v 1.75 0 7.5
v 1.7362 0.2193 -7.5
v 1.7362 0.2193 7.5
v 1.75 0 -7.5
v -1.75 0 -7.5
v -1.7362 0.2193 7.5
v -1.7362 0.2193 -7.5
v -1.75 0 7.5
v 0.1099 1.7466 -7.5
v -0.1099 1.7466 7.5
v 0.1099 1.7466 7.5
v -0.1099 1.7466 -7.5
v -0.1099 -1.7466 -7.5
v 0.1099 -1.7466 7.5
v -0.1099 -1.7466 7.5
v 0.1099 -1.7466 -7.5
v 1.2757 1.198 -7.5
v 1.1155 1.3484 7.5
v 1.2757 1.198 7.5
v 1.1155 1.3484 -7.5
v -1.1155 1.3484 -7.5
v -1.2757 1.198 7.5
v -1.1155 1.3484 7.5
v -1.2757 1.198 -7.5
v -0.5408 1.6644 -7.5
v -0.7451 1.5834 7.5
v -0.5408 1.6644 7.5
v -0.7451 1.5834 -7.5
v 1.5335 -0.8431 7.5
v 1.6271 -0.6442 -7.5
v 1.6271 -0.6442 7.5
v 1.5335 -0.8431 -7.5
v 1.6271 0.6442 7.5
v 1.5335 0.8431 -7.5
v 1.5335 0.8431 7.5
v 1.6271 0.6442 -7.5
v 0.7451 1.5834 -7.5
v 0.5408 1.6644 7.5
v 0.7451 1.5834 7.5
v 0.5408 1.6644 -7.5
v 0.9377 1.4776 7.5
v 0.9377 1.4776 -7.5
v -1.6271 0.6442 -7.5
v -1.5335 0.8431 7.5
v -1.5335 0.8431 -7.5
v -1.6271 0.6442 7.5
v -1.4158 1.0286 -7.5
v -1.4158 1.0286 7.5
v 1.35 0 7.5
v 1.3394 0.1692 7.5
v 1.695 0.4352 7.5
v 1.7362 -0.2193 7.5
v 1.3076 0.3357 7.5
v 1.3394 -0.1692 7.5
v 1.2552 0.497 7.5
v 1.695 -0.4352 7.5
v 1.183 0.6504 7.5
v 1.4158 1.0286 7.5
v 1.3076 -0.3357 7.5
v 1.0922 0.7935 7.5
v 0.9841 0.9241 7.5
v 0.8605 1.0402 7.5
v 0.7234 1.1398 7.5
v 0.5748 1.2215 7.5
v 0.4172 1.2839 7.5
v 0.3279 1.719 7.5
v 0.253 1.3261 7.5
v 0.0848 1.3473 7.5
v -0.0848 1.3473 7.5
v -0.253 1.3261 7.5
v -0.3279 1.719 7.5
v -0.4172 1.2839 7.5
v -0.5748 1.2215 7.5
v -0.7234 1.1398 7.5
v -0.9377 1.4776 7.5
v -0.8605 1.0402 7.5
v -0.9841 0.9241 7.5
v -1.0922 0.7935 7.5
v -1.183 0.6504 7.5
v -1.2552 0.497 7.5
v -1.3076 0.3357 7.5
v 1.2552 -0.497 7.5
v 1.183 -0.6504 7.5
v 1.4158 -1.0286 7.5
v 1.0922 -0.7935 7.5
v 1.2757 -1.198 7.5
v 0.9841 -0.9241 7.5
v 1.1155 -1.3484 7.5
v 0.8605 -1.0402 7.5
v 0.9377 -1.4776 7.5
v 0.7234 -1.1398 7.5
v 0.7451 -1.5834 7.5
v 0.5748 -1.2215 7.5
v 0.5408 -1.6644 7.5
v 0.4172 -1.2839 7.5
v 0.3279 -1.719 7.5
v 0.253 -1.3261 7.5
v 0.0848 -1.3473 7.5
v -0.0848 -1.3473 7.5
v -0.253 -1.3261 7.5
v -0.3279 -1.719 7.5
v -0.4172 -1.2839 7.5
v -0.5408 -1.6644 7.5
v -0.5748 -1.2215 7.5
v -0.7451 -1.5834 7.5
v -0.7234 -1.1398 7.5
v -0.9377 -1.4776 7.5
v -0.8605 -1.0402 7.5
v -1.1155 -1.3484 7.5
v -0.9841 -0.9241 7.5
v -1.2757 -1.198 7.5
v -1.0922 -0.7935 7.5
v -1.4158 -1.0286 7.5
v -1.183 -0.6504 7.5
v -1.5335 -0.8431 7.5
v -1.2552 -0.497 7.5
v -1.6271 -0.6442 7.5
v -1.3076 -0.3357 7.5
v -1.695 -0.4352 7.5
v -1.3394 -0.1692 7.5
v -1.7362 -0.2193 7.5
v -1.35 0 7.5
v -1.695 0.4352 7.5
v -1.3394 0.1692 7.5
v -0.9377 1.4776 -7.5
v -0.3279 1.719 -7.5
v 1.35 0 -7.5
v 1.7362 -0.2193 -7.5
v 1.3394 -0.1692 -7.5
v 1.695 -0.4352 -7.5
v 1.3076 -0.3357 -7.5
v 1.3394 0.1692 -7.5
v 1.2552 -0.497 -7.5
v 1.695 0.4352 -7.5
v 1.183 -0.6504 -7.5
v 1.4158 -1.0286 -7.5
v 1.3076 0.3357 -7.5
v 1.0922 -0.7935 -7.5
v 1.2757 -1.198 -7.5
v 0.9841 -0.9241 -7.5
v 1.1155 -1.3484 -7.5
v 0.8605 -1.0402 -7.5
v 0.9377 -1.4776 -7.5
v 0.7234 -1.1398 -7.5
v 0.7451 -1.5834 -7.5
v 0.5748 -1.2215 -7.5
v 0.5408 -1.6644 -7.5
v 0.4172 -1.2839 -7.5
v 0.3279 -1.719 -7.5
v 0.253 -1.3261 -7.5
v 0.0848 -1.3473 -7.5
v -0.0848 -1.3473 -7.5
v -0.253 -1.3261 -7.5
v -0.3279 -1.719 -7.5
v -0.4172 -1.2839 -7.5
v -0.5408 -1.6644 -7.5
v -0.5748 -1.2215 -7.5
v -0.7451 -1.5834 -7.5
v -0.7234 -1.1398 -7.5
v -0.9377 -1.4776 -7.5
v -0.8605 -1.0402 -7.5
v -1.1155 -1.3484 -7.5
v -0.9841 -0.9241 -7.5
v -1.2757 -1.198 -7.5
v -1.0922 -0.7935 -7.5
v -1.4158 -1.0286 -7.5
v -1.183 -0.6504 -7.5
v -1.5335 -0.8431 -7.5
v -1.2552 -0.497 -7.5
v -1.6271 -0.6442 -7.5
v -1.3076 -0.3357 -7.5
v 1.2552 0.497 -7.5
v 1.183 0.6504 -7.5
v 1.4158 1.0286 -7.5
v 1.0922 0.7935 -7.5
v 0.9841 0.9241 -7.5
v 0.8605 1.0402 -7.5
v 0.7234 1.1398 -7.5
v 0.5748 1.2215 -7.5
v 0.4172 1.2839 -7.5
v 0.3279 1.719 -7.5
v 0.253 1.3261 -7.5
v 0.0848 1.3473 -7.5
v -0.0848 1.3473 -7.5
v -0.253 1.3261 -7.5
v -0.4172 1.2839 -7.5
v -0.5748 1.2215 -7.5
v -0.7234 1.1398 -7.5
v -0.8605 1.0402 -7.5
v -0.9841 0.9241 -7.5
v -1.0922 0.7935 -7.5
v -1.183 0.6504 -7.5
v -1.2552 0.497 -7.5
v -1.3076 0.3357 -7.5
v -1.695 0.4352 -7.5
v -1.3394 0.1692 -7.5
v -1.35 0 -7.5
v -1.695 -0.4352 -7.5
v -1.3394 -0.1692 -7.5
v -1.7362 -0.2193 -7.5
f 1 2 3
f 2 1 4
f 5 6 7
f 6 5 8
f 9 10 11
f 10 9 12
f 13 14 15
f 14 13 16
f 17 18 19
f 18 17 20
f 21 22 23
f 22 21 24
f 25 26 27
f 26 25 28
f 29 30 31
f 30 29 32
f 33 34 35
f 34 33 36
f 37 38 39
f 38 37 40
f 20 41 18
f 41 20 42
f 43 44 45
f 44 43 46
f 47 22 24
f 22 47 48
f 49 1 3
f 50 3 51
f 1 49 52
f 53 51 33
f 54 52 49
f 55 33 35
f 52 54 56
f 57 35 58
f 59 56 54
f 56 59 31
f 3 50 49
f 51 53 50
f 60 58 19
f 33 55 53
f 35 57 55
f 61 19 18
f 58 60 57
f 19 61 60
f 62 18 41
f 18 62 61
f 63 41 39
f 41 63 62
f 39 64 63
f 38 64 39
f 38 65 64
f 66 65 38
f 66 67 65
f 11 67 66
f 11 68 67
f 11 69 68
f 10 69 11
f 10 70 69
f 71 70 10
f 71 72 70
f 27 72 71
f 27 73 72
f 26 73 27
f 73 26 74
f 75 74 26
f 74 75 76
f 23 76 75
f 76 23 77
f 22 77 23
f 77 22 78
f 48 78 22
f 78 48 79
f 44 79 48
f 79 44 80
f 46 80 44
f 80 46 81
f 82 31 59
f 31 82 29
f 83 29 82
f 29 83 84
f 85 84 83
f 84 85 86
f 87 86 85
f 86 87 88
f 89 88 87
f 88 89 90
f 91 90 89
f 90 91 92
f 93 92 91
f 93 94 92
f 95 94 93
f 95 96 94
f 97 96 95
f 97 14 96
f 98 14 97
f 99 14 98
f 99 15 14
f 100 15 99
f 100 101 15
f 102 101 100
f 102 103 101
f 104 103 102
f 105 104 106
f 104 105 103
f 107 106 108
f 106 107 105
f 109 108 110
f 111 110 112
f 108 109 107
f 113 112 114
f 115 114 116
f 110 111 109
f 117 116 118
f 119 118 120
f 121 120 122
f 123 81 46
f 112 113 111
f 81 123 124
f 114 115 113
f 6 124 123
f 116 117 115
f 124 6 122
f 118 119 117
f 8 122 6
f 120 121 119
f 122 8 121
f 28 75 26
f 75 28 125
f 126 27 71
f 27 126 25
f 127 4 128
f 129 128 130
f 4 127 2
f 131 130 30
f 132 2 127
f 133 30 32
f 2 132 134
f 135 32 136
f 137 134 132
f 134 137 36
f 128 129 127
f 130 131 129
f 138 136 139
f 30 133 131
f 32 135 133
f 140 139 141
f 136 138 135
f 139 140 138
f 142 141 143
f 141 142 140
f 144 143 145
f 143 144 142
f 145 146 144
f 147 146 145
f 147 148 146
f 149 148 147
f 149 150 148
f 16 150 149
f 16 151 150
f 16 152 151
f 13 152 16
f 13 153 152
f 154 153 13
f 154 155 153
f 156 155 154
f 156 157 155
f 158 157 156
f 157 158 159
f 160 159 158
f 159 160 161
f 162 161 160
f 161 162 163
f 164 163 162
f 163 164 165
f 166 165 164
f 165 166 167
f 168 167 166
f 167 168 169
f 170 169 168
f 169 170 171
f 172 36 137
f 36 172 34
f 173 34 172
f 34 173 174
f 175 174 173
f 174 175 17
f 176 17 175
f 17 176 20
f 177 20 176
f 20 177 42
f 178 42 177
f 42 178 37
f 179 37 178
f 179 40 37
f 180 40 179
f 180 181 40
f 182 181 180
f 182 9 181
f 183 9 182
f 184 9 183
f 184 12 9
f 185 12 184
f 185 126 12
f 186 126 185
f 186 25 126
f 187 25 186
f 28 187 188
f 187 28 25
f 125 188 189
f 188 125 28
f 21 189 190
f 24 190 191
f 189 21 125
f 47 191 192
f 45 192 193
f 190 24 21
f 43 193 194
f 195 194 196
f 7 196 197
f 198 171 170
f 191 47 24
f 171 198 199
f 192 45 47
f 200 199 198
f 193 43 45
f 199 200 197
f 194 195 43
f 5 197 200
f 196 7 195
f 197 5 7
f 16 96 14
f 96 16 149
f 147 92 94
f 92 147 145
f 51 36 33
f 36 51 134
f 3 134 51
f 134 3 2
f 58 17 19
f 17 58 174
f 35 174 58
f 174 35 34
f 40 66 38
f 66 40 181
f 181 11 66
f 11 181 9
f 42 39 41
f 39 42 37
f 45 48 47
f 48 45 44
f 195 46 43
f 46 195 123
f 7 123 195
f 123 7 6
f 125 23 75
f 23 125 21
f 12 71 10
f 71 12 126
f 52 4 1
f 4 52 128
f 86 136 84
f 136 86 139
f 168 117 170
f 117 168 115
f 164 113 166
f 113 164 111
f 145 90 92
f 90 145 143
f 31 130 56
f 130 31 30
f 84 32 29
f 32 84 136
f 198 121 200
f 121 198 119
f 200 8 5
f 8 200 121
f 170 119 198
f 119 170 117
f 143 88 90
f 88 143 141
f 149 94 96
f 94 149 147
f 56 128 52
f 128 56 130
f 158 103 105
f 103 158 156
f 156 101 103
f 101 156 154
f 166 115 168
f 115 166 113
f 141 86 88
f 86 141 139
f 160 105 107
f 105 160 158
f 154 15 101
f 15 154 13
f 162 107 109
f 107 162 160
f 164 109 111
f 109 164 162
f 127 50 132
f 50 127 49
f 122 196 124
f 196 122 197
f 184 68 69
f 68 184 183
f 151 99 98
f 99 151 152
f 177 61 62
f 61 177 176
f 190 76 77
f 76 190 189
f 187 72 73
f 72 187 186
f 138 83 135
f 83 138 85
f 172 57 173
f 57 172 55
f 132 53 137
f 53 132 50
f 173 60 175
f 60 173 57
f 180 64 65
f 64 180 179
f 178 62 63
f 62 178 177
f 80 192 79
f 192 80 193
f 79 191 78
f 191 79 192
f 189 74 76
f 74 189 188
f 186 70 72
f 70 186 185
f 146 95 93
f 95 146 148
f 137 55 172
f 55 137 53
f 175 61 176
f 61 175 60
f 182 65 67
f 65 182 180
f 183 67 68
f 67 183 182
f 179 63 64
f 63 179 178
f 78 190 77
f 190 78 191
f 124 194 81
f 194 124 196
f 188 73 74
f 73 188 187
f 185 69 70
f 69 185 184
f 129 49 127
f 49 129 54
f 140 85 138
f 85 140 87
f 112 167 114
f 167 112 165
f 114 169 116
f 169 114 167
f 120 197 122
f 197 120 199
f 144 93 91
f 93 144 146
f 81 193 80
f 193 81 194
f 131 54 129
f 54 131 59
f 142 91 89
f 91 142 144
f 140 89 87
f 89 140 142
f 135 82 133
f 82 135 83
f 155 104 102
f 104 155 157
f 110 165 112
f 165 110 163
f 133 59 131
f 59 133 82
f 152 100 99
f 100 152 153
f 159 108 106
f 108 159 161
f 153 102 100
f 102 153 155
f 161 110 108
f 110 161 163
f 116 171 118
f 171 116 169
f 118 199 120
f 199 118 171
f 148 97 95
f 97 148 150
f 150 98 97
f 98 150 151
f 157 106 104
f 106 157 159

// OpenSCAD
$fn = 50;


difference() {
	union() {
		translate(v = [0, 0, -7.5000000000]) {
			cylinder(h = 15, r = 1.7500000000);
		}
	}
	union() {
		translate(v = [0, 0, -100.0000000000]) {
			cylinder(h = 200, r = 1.3500000000);
		}
	}
}
